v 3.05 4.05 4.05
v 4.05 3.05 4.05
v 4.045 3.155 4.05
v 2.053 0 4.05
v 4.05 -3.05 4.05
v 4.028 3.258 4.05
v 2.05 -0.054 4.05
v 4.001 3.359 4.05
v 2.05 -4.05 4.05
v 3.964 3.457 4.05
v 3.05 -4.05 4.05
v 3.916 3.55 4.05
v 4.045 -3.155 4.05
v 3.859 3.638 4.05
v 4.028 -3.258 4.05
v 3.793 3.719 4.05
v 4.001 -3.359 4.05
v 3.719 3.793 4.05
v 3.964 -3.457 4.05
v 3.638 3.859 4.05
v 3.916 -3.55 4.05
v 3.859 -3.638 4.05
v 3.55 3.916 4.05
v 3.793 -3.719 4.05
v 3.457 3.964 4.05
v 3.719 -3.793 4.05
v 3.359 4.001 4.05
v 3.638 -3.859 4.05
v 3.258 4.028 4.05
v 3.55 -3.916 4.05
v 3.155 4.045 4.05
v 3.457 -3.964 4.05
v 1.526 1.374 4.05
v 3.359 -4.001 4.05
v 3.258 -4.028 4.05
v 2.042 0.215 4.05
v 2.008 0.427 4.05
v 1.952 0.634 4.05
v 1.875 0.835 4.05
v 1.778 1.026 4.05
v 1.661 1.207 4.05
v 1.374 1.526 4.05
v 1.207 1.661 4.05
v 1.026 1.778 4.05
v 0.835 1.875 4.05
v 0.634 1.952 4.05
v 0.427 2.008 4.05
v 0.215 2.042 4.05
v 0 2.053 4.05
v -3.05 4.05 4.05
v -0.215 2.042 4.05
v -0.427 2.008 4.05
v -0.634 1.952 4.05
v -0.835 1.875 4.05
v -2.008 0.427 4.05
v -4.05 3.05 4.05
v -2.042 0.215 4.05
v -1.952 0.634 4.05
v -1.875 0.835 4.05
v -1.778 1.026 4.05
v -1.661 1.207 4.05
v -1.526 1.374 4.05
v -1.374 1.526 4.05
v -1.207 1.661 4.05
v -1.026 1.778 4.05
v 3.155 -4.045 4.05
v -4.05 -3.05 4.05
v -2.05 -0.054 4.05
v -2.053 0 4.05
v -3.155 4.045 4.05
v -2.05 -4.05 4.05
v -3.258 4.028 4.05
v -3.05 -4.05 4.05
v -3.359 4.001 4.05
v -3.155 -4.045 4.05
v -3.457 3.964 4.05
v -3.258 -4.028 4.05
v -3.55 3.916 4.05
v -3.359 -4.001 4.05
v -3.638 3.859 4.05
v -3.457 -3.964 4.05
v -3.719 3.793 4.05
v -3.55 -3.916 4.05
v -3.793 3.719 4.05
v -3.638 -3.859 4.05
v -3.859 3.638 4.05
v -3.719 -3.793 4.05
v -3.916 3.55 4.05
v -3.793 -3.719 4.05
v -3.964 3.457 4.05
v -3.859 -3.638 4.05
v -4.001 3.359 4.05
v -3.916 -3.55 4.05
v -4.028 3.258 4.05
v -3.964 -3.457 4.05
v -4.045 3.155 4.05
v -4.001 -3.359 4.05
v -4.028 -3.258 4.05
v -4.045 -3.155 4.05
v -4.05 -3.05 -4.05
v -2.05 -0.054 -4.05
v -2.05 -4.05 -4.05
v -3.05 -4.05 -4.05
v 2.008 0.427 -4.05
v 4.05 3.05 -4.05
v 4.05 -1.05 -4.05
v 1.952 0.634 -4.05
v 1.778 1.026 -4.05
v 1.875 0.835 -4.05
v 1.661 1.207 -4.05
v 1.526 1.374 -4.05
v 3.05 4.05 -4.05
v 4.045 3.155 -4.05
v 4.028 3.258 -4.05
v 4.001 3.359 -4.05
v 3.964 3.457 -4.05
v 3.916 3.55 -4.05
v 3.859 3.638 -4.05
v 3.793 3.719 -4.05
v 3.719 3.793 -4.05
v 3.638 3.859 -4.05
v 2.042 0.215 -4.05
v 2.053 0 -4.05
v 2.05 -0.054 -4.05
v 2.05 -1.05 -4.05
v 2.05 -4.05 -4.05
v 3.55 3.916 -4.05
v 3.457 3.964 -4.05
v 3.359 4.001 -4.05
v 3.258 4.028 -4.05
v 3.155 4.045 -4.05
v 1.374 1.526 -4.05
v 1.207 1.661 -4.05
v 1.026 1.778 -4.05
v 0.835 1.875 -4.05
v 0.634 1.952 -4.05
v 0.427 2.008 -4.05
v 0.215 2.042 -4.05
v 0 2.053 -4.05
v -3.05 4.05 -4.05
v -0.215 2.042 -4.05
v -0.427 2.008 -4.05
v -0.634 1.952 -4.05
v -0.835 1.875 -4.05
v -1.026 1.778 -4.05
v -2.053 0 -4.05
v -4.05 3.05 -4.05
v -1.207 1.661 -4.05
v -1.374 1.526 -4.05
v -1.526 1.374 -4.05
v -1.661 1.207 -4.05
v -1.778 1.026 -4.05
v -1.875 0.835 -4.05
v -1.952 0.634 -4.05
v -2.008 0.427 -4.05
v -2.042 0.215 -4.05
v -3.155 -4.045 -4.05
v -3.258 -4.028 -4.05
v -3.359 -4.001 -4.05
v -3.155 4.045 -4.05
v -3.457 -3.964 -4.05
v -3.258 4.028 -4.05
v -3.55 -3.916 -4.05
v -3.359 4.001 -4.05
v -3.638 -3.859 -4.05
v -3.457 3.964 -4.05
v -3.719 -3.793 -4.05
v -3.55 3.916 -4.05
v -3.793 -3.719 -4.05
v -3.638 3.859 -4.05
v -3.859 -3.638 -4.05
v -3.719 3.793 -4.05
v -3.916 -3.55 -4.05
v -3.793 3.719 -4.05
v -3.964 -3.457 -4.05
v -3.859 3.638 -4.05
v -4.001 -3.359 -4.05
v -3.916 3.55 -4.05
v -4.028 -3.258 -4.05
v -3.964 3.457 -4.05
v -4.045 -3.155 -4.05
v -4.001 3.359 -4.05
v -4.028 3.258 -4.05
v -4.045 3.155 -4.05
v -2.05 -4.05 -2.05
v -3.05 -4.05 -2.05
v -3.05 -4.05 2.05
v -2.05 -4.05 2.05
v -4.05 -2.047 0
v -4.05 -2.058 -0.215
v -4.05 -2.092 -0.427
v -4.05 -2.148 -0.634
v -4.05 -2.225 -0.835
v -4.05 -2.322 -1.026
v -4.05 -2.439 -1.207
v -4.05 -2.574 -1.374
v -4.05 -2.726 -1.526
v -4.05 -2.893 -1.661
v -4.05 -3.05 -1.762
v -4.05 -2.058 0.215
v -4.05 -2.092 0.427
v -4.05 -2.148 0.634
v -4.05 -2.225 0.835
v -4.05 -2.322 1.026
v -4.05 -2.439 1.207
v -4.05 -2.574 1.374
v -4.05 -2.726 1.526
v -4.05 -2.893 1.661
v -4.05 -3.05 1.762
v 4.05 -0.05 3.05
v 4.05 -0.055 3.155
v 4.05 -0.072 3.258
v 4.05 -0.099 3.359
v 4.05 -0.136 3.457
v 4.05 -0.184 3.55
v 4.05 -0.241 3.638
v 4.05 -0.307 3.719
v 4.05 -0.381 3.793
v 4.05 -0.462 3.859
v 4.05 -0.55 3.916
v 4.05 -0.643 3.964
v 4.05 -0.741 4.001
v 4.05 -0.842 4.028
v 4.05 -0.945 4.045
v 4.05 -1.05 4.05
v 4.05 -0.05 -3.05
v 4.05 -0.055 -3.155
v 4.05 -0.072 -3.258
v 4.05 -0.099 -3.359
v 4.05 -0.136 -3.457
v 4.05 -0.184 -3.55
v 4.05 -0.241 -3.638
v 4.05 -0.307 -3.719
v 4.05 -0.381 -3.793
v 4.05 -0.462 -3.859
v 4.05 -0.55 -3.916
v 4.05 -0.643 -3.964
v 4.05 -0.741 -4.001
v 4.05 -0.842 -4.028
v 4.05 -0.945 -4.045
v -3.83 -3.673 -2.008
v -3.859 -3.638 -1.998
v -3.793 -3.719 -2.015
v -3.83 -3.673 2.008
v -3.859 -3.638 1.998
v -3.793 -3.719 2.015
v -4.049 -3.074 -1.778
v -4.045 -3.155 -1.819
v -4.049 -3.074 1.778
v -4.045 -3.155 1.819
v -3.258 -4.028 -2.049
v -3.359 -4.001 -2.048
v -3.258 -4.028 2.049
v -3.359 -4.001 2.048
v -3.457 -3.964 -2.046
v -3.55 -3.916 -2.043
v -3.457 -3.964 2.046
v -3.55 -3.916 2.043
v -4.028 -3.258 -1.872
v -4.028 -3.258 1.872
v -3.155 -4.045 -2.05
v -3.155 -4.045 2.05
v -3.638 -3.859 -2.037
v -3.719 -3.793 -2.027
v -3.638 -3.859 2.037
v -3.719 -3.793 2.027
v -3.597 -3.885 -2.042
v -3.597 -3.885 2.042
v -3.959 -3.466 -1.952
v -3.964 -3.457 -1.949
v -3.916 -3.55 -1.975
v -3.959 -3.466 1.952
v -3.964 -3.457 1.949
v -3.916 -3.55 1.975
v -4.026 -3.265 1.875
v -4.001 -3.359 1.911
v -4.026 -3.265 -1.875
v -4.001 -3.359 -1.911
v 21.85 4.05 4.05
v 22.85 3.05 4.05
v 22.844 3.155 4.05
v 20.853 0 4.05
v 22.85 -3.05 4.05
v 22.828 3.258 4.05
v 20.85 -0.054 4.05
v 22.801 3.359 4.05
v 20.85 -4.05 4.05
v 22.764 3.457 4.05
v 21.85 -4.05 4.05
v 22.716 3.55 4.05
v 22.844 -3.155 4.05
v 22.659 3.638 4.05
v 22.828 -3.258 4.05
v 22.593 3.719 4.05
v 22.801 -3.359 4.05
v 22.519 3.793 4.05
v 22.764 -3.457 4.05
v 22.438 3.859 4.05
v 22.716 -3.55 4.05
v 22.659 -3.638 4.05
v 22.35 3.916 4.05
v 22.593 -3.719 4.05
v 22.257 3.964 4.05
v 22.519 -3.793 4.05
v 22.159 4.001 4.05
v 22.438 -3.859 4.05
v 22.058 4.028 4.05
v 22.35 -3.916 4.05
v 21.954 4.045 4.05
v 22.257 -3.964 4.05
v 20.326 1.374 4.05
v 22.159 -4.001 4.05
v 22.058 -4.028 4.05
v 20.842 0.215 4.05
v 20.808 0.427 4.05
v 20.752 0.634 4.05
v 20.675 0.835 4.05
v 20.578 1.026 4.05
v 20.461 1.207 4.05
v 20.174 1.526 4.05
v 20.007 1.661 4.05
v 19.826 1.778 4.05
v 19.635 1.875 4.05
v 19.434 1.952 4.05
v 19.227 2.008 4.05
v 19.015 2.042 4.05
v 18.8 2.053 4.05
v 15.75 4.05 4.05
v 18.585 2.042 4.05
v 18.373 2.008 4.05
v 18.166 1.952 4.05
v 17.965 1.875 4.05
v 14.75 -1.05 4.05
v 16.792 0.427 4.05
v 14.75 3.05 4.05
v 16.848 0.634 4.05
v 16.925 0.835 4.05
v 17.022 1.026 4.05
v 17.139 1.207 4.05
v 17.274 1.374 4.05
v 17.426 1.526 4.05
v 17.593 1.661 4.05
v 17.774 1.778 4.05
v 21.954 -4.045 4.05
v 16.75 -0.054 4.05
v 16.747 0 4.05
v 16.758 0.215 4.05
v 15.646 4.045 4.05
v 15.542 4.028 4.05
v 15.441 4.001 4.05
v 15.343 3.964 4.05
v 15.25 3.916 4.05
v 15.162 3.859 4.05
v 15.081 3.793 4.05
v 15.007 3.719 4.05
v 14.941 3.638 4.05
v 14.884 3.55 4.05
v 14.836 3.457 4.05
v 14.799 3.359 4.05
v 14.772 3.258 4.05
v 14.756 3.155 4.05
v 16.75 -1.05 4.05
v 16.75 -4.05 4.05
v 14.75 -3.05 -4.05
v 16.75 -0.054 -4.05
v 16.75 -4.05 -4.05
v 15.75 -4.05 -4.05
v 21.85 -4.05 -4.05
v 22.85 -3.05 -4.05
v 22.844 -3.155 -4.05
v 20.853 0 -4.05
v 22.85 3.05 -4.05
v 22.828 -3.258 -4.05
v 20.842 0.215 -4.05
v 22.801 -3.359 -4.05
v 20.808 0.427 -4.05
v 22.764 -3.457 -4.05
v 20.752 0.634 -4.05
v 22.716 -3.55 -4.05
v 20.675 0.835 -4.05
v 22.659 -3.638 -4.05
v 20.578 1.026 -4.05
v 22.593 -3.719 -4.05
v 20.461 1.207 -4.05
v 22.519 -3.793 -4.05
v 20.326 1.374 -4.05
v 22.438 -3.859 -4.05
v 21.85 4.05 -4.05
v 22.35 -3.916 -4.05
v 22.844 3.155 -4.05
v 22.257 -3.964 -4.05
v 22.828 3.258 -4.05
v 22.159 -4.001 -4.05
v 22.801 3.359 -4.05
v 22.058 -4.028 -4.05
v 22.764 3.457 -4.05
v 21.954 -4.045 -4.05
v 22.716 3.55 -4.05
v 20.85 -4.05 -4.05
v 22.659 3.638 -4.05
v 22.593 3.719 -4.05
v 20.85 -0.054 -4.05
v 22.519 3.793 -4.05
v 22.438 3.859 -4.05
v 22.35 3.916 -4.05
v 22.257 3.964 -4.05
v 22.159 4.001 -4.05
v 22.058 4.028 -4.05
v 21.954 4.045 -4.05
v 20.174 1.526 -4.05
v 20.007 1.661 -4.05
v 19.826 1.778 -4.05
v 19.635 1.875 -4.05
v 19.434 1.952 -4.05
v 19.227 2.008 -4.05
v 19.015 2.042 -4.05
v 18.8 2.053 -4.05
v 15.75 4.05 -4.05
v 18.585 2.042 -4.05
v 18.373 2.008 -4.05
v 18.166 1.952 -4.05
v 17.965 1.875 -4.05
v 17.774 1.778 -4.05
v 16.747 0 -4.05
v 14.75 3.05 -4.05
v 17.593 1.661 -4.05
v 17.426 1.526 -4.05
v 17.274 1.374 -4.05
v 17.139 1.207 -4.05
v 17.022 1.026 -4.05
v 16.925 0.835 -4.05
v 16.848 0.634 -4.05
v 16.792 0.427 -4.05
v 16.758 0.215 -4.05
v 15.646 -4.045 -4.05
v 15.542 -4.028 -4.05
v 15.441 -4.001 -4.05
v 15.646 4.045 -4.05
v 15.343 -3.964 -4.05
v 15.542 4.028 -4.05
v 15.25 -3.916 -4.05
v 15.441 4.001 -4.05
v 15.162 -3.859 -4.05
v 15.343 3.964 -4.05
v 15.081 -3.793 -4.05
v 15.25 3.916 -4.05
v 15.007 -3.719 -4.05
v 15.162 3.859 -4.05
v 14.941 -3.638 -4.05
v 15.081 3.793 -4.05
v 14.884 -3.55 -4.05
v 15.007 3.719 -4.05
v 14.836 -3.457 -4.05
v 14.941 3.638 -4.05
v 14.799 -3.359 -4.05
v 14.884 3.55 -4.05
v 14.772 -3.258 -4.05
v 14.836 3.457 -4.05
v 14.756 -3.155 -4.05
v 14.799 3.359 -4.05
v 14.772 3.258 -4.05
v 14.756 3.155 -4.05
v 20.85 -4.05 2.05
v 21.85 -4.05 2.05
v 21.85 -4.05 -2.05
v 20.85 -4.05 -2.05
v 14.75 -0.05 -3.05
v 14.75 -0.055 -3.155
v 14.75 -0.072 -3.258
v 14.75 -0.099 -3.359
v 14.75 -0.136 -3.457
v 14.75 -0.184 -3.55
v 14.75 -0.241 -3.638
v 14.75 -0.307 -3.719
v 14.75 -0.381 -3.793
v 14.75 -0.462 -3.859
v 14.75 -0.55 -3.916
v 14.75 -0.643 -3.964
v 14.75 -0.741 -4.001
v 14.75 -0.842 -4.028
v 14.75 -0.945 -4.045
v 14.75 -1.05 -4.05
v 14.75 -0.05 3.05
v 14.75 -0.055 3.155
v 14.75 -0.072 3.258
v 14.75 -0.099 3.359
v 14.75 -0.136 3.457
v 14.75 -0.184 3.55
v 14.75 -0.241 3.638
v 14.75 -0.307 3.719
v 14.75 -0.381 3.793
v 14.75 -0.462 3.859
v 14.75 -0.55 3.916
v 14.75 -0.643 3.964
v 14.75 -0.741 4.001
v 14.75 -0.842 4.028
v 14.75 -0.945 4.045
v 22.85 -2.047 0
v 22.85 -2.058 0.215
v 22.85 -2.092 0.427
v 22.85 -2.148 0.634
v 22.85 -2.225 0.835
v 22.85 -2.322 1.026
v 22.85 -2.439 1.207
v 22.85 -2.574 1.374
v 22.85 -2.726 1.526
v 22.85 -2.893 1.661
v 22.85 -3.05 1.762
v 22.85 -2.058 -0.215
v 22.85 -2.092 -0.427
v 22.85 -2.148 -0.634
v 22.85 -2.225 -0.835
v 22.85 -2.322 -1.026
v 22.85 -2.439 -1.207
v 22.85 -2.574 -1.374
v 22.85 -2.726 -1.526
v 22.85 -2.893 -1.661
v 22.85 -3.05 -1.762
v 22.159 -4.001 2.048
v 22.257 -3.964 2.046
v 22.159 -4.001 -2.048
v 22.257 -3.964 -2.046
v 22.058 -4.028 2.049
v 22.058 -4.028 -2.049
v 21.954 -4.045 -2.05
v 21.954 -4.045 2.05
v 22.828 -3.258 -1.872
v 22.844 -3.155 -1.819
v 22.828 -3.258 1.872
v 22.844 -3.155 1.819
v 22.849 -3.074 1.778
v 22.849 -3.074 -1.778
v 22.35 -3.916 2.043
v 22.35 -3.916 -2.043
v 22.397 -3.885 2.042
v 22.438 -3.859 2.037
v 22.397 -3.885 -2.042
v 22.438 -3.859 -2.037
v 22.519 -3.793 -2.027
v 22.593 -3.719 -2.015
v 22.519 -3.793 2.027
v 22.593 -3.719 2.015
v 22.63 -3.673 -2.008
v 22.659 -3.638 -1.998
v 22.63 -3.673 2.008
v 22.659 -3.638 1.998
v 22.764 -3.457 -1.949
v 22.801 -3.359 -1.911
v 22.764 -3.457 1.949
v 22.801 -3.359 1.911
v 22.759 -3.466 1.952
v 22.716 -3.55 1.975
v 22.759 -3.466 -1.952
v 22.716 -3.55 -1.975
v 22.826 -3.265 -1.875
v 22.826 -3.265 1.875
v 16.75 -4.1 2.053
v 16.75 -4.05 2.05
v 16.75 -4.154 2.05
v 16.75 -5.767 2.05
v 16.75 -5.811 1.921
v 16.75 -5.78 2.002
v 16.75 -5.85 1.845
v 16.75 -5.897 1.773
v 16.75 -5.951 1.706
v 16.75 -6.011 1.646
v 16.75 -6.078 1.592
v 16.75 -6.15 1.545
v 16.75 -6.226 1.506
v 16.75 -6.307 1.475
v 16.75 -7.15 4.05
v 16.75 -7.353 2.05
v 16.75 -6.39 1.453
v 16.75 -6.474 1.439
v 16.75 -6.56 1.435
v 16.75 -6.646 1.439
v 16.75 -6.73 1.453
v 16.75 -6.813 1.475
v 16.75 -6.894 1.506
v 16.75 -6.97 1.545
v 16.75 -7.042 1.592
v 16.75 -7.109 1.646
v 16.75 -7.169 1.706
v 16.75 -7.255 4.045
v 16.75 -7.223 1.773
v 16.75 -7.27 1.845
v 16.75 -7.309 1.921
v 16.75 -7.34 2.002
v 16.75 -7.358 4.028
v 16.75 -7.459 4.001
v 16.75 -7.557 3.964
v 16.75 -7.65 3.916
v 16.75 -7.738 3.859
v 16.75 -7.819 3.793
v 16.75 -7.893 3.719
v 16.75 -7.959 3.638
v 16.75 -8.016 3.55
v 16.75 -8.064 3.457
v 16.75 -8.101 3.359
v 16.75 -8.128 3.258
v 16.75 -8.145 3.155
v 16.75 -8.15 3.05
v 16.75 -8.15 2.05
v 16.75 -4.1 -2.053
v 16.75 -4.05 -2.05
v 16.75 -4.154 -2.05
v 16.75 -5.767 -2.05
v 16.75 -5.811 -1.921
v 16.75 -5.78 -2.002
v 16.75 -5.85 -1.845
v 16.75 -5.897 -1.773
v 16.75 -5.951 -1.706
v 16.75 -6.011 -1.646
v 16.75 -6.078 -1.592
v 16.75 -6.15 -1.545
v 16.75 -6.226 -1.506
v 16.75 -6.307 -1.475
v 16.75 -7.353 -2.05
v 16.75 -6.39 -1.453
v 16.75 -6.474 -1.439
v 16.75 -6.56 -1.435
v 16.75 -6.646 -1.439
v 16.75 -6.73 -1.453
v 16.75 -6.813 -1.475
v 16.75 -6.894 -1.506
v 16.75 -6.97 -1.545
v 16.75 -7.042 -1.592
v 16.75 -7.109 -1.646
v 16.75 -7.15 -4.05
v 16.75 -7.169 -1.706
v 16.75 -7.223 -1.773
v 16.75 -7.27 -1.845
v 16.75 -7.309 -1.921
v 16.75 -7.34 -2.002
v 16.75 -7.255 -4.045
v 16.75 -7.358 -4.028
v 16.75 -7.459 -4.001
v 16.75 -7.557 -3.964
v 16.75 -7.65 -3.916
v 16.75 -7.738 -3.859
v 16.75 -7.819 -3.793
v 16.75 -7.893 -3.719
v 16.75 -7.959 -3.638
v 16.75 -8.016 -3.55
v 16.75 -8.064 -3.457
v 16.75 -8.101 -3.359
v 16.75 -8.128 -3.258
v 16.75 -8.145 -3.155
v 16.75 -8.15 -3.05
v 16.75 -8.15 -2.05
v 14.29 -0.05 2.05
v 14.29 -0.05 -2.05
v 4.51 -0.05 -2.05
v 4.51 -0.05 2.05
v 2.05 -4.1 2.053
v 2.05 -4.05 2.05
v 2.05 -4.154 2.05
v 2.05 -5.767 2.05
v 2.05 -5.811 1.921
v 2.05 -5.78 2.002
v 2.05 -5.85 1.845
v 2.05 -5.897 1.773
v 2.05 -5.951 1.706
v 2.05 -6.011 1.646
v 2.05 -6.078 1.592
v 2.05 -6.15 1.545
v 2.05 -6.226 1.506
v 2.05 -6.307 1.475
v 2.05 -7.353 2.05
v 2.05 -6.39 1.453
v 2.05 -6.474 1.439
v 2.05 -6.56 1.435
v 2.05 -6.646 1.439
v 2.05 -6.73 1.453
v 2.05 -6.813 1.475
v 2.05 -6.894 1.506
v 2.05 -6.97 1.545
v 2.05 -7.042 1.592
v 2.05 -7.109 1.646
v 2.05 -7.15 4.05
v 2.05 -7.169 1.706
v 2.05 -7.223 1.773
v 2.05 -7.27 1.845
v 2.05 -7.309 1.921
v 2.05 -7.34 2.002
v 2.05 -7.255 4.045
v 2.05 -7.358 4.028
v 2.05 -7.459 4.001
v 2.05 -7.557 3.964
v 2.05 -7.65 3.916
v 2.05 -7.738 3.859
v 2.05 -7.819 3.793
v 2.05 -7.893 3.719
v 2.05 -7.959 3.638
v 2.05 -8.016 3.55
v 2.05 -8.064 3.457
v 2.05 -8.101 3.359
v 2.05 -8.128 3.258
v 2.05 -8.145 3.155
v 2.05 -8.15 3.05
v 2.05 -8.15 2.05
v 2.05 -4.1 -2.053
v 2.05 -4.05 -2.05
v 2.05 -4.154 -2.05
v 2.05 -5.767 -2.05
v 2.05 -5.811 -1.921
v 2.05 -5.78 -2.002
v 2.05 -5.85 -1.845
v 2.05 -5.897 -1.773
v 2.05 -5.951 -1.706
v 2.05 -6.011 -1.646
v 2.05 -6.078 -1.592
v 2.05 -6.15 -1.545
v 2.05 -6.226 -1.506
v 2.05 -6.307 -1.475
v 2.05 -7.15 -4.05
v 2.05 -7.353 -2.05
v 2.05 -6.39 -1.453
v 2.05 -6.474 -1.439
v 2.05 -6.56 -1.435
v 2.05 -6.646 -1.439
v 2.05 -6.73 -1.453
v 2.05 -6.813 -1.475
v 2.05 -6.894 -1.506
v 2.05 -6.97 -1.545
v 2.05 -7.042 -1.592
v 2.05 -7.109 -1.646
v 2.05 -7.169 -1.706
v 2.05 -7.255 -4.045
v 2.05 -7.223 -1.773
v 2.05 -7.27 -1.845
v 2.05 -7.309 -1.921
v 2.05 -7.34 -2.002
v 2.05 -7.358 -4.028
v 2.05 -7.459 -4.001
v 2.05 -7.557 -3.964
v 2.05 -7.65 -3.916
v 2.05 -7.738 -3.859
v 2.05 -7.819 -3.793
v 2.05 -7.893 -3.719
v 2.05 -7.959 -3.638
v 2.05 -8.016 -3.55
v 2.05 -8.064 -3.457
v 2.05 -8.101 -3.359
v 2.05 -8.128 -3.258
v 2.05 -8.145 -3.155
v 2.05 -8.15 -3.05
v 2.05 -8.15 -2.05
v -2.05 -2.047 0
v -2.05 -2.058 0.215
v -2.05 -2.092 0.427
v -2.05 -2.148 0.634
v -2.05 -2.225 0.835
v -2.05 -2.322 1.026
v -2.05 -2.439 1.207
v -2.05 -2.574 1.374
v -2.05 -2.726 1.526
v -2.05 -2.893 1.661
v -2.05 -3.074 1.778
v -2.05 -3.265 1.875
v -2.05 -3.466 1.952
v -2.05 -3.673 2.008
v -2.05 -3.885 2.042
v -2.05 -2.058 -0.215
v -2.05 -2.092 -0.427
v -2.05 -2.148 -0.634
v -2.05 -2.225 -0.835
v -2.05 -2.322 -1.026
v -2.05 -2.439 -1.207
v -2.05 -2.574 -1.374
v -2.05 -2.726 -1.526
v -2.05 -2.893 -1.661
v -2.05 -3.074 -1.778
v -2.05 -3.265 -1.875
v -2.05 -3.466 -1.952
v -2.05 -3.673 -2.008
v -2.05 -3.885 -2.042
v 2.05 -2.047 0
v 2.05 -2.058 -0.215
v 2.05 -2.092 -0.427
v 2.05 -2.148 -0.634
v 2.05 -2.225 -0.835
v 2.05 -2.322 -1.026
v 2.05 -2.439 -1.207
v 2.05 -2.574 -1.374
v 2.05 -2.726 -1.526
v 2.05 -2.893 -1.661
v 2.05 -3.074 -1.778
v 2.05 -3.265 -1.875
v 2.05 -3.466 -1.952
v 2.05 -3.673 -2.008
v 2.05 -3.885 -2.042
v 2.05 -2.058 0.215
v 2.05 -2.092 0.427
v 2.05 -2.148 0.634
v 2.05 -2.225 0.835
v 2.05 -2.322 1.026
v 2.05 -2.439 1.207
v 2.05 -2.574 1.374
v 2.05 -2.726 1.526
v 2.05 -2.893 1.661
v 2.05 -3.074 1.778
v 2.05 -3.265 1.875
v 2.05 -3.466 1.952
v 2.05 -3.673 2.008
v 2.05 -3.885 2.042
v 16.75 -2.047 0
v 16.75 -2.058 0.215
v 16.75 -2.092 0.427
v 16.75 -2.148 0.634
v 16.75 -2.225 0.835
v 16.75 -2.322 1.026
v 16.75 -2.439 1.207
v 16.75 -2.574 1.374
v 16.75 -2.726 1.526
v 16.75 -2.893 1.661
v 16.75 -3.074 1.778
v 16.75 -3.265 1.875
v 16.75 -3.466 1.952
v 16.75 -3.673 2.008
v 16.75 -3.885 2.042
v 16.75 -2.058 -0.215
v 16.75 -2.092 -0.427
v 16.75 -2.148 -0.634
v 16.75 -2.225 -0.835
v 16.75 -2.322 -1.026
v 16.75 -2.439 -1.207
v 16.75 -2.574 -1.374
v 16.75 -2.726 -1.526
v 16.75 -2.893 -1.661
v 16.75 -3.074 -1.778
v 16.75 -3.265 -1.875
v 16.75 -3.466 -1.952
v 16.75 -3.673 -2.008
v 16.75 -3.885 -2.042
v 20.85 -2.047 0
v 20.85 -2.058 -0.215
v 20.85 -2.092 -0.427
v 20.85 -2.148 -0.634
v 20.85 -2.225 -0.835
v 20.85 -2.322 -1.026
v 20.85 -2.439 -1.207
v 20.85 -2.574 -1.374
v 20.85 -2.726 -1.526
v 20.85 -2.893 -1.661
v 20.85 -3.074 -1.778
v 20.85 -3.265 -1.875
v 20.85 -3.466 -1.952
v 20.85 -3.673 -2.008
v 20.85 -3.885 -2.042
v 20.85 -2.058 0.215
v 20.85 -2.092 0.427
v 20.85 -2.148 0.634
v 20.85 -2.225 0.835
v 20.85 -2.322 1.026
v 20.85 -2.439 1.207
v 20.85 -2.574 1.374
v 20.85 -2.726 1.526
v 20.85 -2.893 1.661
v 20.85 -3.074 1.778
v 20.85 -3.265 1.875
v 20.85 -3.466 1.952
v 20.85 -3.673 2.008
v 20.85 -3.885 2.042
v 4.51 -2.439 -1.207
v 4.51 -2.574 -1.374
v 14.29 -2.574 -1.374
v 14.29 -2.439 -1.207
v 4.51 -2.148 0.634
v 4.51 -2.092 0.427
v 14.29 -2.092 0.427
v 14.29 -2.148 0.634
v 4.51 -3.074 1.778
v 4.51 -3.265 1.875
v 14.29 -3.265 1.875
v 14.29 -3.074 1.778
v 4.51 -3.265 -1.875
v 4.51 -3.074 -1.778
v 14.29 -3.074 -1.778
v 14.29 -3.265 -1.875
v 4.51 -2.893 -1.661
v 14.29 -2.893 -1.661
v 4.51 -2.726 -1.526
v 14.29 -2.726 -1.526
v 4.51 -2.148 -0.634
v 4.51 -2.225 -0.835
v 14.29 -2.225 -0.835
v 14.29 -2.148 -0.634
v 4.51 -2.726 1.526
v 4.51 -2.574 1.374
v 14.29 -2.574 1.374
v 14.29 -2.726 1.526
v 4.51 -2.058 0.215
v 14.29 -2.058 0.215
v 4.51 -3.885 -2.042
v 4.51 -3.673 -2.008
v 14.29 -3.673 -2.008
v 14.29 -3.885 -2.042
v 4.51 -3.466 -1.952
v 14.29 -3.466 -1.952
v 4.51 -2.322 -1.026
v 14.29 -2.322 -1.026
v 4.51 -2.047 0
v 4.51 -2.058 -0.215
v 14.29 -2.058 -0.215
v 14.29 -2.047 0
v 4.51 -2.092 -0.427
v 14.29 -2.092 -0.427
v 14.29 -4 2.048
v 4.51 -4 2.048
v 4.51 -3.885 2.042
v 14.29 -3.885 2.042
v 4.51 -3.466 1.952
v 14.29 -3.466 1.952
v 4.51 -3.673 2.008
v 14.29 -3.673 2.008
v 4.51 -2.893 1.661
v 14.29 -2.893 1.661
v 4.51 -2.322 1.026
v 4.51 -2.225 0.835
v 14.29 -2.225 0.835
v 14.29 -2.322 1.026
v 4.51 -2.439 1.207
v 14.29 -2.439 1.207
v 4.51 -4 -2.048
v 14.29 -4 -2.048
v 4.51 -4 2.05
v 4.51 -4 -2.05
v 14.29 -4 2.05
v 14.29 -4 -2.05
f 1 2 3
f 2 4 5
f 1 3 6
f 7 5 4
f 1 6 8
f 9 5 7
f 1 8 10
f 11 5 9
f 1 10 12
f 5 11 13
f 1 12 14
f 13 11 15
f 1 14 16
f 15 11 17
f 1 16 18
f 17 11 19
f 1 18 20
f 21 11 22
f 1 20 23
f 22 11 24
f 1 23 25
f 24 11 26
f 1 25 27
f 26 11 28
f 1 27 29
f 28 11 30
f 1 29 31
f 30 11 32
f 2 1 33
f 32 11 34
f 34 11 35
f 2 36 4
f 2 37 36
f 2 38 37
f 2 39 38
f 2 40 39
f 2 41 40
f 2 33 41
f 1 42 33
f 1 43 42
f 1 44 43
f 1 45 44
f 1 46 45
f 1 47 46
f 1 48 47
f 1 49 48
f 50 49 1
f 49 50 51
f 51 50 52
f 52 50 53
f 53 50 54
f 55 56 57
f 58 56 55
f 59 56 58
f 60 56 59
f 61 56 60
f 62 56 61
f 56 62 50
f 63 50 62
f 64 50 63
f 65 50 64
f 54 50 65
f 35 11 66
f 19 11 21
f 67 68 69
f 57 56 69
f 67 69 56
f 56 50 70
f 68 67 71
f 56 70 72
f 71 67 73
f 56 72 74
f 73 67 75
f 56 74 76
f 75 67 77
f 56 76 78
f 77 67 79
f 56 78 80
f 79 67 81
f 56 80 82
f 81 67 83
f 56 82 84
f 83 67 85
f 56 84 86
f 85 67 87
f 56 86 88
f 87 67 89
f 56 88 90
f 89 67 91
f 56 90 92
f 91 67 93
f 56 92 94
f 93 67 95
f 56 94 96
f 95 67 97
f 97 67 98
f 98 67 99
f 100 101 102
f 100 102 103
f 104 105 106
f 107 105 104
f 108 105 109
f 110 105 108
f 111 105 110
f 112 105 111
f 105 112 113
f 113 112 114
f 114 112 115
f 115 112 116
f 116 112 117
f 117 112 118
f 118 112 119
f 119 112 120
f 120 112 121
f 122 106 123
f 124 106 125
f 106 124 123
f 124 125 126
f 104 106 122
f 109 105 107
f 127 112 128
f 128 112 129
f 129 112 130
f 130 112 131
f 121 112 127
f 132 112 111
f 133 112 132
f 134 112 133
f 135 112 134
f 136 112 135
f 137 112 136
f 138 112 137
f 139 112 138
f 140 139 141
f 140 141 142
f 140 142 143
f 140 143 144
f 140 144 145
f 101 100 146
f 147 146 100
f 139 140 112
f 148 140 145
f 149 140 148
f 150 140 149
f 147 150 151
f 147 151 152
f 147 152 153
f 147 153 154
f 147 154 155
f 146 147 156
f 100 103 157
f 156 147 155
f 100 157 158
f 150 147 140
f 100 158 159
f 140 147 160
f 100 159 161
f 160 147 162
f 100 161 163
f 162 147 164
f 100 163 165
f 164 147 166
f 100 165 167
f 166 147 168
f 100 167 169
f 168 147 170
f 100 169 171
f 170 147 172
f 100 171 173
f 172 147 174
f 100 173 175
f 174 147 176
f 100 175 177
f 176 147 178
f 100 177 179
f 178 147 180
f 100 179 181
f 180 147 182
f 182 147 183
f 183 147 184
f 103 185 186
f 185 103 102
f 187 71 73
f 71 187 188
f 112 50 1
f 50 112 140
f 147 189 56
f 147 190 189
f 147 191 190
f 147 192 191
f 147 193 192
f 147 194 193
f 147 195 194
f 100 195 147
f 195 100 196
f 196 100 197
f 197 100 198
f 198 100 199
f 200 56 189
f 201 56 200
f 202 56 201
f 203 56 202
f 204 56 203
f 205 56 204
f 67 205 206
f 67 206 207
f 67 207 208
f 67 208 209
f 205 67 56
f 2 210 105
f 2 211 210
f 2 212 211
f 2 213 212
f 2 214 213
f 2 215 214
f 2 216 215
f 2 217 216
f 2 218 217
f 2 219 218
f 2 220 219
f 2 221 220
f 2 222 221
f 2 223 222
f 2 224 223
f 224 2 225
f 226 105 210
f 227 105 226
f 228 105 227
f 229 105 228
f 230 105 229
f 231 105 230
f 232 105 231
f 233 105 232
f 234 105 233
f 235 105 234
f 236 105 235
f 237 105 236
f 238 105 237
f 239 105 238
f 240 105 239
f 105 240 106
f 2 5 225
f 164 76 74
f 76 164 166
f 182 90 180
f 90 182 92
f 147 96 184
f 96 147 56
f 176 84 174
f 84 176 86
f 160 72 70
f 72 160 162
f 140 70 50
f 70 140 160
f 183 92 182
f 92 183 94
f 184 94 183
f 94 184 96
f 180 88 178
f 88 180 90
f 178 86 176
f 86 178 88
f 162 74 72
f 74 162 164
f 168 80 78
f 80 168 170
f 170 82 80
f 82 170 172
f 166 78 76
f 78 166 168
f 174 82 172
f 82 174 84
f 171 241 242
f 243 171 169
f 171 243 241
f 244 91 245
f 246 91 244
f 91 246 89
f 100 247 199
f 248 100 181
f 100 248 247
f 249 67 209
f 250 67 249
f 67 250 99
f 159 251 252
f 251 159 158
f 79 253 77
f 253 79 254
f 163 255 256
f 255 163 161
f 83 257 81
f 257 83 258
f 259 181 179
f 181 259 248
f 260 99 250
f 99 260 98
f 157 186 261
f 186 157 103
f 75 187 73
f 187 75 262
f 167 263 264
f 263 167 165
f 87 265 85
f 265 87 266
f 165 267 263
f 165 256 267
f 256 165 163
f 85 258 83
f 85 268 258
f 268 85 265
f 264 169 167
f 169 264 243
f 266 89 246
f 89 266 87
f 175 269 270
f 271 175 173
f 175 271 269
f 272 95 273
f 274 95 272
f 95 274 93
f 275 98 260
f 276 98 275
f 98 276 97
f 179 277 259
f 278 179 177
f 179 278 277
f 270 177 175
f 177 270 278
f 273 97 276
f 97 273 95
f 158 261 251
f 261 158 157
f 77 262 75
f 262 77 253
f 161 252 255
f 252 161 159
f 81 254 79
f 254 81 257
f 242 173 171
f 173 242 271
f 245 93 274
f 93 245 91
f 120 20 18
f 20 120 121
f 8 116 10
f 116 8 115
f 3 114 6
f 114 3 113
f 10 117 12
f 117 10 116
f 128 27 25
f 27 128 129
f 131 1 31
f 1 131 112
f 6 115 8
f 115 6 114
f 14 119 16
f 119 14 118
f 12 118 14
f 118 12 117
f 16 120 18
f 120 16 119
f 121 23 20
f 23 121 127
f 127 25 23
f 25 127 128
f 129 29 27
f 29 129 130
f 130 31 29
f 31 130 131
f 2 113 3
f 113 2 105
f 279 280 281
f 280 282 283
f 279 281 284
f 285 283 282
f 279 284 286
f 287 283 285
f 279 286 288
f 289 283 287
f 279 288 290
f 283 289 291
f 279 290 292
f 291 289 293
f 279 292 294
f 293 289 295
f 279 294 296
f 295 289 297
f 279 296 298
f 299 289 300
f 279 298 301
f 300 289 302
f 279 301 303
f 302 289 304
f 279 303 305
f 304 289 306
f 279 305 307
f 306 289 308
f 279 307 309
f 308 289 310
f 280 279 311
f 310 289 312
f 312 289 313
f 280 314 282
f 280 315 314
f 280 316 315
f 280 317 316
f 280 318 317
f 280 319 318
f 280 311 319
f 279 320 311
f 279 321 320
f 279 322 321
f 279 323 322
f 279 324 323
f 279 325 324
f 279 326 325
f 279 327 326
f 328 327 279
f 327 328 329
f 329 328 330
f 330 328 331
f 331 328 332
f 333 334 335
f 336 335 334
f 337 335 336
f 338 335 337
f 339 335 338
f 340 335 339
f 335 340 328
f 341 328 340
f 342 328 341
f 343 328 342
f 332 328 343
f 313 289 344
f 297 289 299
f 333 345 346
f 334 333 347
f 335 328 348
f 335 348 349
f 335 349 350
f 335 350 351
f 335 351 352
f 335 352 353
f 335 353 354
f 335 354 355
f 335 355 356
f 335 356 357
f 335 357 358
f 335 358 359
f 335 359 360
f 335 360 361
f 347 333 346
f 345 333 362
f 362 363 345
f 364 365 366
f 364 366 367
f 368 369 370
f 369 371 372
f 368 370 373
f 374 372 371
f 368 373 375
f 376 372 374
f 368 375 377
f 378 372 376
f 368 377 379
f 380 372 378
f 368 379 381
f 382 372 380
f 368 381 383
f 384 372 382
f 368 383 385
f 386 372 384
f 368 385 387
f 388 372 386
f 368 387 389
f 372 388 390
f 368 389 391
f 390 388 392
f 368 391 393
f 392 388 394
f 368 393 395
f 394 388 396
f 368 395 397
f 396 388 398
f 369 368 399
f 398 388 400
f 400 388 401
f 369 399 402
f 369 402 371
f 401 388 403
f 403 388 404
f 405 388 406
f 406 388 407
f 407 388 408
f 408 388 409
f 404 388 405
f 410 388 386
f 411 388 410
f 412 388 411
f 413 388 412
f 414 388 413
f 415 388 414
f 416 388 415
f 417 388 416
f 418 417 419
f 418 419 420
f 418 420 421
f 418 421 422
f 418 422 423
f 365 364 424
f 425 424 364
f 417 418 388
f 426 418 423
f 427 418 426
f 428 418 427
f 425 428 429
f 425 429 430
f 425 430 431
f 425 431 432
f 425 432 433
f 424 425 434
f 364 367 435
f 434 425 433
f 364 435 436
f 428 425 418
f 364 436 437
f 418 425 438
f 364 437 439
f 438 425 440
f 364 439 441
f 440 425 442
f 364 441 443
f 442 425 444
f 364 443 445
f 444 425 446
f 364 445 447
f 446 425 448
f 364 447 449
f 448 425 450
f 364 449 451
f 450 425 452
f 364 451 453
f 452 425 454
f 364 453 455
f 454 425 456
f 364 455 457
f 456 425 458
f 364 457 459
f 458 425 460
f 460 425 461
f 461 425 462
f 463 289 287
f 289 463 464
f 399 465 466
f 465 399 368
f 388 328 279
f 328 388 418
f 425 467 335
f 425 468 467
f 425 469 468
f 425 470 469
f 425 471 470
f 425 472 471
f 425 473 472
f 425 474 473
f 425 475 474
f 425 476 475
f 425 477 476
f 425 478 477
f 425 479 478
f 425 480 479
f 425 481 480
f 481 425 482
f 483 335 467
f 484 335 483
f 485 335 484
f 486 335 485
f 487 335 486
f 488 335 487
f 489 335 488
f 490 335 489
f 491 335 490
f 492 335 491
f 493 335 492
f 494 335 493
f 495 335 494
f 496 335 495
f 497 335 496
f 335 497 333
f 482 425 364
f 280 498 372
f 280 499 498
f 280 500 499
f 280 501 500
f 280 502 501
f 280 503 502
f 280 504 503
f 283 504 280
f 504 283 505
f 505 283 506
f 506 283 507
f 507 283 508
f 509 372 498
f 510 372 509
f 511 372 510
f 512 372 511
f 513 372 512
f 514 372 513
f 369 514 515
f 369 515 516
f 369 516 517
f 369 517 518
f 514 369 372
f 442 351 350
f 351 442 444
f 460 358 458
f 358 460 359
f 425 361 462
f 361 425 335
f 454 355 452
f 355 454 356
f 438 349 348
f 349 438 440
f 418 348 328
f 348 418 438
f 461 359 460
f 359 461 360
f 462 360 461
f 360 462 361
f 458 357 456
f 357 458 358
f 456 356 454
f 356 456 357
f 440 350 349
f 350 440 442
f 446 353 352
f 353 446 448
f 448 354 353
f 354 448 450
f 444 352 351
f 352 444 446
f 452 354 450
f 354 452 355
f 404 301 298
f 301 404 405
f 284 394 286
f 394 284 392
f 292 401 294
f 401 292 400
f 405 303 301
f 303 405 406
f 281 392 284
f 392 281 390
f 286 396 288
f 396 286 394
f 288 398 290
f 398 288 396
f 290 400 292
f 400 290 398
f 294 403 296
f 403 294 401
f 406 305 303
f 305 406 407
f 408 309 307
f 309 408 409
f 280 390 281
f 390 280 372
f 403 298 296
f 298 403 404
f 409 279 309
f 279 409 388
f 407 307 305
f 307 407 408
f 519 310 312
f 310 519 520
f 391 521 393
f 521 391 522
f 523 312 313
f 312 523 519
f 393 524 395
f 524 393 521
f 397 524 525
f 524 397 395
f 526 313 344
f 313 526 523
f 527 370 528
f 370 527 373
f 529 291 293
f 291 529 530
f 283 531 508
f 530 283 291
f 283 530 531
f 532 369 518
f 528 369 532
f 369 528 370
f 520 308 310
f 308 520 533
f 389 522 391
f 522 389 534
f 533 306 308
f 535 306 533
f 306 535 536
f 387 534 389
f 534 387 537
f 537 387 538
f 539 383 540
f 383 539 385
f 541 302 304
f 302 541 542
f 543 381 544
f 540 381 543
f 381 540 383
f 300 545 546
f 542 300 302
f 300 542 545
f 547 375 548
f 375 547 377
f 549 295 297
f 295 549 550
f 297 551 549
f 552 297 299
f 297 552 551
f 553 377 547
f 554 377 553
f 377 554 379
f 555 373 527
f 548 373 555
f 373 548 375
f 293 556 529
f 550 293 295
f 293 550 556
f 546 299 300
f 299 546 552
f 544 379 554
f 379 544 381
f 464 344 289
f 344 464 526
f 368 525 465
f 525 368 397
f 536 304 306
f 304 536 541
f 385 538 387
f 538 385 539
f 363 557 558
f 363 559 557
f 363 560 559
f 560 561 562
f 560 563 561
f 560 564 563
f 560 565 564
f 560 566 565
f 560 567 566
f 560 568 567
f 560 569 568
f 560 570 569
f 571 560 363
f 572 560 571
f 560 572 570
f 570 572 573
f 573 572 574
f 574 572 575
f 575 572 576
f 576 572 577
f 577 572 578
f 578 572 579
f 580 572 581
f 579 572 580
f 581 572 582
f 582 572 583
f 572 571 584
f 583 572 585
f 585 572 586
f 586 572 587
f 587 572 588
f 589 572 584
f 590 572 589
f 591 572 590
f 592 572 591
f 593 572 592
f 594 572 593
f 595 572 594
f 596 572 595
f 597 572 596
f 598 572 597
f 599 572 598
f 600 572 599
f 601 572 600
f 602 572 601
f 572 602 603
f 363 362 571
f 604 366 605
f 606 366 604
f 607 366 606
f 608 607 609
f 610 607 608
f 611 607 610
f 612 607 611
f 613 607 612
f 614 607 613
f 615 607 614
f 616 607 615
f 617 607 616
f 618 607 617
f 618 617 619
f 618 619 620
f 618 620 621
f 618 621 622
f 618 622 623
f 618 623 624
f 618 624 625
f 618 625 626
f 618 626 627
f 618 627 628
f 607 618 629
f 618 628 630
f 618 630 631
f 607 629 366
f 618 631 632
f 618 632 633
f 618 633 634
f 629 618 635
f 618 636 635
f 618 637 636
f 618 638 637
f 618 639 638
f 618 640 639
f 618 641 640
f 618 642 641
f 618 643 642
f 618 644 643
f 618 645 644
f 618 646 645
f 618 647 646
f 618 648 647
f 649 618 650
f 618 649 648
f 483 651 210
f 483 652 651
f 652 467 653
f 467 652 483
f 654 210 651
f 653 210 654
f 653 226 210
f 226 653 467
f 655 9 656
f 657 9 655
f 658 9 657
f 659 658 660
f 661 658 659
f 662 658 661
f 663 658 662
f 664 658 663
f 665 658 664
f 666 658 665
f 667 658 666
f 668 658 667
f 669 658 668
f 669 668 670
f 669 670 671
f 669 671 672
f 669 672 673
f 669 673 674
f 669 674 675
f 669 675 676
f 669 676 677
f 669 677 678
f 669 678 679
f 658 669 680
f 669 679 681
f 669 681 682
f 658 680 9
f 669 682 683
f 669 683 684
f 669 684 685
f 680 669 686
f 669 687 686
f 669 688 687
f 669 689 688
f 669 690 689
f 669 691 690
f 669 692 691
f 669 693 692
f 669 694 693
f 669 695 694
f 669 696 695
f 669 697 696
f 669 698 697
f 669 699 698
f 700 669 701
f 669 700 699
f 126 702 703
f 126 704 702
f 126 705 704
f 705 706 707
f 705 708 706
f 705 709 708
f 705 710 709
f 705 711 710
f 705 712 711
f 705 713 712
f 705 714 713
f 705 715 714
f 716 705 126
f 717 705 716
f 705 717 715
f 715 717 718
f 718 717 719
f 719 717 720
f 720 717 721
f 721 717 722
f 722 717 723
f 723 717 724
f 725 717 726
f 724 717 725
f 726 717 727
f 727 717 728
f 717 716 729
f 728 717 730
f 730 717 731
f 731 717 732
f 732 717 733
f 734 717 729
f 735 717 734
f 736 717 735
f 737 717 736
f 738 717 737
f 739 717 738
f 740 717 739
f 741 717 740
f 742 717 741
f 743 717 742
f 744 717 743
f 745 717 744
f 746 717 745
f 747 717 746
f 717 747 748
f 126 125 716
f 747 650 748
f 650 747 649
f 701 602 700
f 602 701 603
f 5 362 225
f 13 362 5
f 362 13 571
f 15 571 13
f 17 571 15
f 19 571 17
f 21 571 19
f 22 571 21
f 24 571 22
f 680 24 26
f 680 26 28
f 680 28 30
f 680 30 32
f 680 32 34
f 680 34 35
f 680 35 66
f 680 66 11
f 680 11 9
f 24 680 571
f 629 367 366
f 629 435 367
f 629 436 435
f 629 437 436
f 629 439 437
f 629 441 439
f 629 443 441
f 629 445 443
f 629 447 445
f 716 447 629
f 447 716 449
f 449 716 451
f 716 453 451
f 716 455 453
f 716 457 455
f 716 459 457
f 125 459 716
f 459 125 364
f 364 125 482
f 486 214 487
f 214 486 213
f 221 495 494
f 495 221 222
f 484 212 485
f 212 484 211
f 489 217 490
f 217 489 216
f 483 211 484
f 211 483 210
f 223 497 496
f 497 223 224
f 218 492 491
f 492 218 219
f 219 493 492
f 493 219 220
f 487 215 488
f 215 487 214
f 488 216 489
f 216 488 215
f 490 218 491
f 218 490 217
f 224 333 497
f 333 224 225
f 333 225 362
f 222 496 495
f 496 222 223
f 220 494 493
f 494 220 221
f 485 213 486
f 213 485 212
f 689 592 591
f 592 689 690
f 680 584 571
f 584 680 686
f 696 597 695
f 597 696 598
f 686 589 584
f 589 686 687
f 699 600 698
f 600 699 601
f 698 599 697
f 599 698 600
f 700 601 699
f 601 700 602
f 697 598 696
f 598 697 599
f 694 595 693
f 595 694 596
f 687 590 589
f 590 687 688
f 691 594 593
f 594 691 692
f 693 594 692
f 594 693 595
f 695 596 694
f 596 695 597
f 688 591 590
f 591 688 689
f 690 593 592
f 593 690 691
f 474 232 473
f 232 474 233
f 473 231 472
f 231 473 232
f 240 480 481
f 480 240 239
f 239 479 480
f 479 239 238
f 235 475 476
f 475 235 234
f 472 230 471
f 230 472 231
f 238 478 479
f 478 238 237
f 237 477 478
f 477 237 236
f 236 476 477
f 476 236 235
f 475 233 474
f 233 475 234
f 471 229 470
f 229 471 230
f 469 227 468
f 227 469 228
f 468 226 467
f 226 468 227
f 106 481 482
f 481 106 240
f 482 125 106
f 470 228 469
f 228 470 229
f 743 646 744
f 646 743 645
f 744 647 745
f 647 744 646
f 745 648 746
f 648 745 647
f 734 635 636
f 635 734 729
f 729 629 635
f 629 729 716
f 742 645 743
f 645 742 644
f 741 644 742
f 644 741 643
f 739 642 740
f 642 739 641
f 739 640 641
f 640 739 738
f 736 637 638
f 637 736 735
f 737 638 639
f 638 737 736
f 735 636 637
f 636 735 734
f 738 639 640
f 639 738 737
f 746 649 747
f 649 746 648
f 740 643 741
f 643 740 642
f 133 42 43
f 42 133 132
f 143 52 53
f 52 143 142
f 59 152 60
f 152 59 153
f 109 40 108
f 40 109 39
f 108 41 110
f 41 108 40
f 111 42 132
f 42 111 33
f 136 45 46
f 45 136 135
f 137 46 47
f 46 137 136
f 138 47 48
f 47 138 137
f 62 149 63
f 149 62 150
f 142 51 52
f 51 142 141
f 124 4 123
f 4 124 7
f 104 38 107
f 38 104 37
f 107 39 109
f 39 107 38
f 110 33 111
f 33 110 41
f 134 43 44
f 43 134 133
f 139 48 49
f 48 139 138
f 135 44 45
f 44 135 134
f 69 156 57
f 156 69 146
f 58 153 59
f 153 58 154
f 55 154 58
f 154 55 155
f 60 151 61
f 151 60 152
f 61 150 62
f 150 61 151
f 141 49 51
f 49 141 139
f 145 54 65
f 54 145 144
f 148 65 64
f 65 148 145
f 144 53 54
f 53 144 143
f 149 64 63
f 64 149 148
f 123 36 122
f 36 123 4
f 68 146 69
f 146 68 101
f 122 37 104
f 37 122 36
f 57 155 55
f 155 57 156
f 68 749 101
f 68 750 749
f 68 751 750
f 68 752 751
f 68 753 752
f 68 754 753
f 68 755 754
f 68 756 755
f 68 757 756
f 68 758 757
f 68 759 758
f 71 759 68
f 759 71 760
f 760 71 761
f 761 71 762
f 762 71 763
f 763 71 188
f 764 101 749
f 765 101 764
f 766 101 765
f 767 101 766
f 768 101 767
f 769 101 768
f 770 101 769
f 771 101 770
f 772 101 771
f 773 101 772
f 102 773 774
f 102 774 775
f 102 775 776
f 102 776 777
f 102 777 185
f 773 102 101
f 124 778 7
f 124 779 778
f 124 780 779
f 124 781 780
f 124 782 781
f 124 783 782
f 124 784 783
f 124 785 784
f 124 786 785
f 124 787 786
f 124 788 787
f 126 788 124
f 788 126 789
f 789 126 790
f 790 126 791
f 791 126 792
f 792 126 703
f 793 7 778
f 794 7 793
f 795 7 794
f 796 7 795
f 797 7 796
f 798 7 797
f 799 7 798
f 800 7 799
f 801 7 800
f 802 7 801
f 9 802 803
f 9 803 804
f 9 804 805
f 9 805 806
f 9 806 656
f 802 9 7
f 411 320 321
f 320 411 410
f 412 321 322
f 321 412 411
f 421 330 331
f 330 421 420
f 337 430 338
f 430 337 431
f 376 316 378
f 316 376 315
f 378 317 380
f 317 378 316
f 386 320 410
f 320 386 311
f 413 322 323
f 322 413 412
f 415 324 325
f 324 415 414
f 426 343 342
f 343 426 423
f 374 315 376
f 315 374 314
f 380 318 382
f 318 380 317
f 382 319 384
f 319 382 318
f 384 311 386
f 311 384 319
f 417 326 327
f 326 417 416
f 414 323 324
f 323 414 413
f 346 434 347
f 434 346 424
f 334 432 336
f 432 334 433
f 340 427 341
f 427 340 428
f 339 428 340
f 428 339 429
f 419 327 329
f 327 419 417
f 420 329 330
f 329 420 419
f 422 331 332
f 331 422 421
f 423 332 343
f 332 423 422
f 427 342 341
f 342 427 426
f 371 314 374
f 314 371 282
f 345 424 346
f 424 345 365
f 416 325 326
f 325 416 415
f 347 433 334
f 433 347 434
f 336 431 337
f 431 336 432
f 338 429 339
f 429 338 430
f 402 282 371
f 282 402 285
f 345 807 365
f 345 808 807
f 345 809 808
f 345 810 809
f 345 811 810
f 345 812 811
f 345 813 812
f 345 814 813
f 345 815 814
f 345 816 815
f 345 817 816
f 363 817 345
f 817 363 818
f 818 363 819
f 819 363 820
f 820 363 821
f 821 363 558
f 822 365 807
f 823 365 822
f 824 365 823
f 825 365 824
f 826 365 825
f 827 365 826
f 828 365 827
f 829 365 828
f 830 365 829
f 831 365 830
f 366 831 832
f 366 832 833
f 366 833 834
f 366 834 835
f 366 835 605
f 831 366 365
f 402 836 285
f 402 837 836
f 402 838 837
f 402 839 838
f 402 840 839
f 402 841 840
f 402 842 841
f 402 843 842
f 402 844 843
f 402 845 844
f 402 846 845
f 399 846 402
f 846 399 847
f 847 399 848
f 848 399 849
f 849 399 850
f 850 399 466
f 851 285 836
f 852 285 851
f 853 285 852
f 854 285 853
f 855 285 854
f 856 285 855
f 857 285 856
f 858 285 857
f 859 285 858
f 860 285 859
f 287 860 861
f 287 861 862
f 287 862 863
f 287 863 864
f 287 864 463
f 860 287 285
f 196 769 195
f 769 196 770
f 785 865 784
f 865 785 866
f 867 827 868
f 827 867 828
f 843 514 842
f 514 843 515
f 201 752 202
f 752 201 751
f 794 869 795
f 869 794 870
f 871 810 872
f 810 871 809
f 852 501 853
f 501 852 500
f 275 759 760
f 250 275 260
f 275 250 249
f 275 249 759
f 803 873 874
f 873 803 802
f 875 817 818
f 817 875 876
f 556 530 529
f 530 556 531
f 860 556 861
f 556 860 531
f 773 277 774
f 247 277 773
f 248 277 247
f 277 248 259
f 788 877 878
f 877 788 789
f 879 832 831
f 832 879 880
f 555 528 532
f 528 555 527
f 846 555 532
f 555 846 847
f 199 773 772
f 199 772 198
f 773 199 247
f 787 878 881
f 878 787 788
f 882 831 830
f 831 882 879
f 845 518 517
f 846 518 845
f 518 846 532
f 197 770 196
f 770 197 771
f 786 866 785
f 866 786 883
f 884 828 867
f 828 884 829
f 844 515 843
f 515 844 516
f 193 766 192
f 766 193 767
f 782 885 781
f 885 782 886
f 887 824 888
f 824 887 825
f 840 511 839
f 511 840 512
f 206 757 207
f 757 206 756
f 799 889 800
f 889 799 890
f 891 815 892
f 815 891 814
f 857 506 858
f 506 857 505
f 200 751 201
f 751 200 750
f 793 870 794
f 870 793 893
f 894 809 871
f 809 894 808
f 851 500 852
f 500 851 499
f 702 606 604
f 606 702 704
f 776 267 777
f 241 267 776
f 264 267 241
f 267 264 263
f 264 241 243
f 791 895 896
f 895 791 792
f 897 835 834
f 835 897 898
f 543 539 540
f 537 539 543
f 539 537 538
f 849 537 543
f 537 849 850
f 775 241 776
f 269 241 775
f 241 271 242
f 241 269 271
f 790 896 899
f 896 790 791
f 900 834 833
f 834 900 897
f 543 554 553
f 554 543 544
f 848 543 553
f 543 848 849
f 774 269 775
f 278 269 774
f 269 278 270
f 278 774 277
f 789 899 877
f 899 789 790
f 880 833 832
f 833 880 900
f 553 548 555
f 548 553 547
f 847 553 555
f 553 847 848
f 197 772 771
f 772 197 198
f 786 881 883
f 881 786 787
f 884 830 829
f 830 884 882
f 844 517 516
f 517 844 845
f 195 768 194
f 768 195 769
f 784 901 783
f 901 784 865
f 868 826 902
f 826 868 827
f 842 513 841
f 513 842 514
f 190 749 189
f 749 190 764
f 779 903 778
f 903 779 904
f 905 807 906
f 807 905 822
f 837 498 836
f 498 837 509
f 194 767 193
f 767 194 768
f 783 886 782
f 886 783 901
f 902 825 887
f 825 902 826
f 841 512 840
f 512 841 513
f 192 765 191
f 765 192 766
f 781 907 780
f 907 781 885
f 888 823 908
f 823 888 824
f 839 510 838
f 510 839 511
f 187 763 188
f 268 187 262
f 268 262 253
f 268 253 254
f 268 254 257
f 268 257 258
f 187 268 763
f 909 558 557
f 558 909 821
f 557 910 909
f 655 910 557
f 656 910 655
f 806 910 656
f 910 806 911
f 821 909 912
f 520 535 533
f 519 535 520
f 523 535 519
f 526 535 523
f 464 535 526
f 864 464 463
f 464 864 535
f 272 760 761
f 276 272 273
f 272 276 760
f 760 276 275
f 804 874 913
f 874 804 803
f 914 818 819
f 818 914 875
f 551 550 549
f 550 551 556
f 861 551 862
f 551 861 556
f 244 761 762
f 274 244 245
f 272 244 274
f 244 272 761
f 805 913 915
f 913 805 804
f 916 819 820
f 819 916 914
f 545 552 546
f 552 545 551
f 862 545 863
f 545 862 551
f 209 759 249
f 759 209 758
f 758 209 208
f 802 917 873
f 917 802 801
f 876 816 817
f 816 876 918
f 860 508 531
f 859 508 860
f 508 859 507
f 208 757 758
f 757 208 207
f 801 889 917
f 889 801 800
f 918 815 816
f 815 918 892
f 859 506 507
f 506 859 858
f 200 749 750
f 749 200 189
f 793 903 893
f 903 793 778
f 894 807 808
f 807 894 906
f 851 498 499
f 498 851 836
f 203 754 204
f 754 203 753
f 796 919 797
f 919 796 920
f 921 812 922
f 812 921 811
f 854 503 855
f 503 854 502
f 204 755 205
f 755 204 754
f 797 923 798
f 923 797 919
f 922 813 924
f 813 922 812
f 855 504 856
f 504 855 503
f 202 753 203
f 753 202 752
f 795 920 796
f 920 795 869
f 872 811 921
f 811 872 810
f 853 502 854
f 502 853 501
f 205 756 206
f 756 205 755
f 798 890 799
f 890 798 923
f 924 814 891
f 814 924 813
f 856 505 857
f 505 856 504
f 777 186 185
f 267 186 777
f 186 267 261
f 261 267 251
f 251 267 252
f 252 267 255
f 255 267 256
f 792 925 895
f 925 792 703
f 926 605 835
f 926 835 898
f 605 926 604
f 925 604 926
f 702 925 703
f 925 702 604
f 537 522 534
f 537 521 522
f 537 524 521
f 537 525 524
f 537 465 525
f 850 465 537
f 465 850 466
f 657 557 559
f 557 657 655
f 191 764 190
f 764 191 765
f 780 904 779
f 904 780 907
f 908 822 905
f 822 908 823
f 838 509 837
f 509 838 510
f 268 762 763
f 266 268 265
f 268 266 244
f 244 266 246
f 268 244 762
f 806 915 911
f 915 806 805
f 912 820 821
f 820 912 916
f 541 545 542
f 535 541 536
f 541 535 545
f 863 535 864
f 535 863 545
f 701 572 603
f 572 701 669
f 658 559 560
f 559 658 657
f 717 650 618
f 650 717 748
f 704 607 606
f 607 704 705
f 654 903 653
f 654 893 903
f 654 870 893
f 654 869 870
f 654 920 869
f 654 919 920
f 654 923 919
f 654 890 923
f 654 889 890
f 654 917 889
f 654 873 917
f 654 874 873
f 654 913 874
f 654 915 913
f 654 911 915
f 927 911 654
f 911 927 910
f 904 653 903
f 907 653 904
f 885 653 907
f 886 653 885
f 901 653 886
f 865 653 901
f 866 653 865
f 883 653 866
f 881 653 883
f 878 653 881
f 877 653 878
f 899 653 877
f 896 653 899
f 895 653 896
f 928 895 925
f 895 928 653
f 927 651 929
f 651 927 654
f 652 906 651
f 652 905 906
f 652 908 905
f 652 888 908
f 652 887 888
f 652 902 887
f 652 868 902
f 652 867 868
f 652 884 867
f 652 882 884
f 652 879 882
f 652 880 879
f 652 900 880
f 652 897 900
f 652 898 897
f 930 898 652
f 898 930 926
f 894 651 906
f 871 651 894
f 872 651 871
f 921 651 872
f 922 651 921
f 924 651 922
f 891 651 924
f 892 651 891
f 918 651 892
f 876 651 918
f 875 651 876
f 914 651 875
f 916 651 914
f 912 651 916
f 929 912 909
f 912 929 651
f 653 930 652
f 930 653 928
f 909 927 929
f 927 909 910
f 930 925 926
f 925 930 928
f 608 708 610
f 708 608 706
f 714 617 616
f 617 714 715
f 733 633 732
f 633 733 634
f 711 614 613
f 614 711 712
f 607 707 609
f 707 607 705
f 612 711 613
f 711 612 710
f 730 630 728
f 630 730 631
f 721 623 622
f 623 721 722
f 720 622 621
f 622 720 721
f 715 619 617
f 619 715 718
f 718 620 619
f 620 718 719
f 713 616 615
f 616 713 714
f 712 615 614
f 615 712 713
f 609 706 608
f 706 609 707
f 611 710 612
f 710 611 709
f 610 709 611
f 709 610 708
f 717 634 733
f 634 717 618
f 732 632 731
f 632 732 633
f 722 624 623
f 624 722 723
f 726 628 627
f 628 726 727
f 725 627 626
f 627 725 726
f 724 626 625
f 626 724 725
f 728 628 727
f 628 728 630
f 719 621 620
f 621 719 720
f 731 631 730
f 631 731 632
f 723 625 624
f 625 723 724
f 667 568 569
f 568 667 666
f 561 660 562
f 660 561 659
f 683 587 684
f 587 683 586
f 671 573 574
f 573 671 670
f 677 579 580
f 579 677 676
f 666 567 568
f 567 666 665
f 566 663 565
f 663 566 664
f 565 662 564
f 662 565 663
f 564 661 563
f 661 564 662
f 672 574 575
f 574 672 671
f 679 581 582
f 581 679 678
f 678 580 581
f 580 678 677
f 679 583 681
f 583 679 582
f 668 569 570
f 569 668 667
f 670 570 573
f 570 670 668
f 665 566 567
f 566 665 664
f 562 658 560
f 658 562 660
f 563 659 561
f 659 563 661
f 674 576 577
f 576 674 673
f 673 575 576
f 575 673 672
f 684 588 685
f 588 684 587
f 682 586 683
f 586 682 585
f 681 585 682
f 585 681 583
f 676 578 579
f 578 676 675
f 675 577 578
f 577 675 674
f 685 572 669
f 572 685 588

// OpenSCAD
/*
 * Clamp for securing plate racks in lower basket
 * of dishwasher machines. Suitable for selected
 * Siemens and Bosch dishwashers.
 *
 * (c) 2016 Jozef Sovcik
 * Siemens & Bosch are trademarks for their respective holders.
 *
 * All lenghts are in milimeters.
 *
 * Tip: Print it up-side-down - it would require less support.
 */

// wire diameter 4.1mm
wireDiameter = 4.1;

// wire radius
wireRadius = wireDiameter/2;

// distance between two top wires
wireDistance = 14.7; 

// element wall thickness
wallThickness = 2.0;

// corner rounding radius
cornerRadius = 1.0;

// clamp width
clampWidth = 8.1;

// extra padding
lowerPadding = 0;

//***************************

elementHeight = wireDiameter + 2*wallThickness + lowerPadding;
elementWidth = wireDiameter + 2*wallThickness;
topElementZ = clampWidth;
botElementZ = wireDistance;

totalWidth = 2*wireDiameter+wireDistance+2*wallThickness;
echo("Total clamp width =", totalWidth );



module cylinder_outer(height,radius,fn){
    fudge = 1/cos(180/fn);
    cylinder(h=height,r=radius*fudge,$fn=fn, center=true);
}


module element(w, h, r, d){
    // element is composed of 2 overlaping cubes
    // and 4 cylinders used to "round" edges.
    // technically, one cube([w,h,d]) would be just fine
    // all those cylinders are just for "beautification"
    cube([w-2*r,h,d], center=true);
    cube([w,h-2*r,d], center=true);
    translate([-w/2+r,h/2-r,0])
        cylinder(h=d,r=r,$fn=60, center=true);
    translate([-w/2+r,-h/2+r,0])
        cylinder(h=d,r=r,$fn=60, center=true);
    translate([w/2-r,h/2-r,0])
        cylinder(h=d,r=r,$fn=60, center=true);
    translate([w/2-r,-h/2+r,0])
        cylinder(h=d,r=r,$fn=60, center=true);
    
} 

module bearingBody(cw, ch, cr, cz, wd, wdst){
    
    // draw left upper element
    element(cw, ch, cr, cz);
    
    // draw right upper element
    translate([wdst+wd,0,0])
        element(cw, ch, cr, cz);

    // draw lower element connecting two upper ones
    translate([(wd+wdst)/2, -wd, 0])
        rotate(a=90,v=[0,1,0])
            element(cw, ch, cr, wdst);
}

module wire(wr, l) {
    cylinder_outer(l, wr, 60);
    translate([0, -2*wr, 0])
        cube([wr*2,4*wr,l], center=true);   
}

module wires(wr, wdst, l){

    // left wire
    wire(wr, l);
    
    // right wire
    translate([wdst+2*wr,0,0])
        wire(wr, l);
    
    // bottom wire
    translate([(2*wr+wdst)/2, -2*wr, 0])
        rotate(a=90,v=[0,1,0])
            wire(wr, wdst*2);
}

// bottom clicks
module clicks(wr, wdst, l){
    
    // click radius
	cr = wr*0.4;
    
    // horizontal offset of click relative to center of wire
    offH = wr*1.1;
    
    // vertical offset of click relative to center of wire
    offV = wr*1.2;
    
    translate([(2*wr+wdst)/2, -2*wr, 0])
        rotate(a=90,v=[0,1,0]){
            translate([offH,-offV,0])
                cylinder(h=wdst,r=cr,$fn=60, center=true);
            translate([-offH,-offV,0])
                cylinder(h=wdst,r=cr,$fn=60, center=true);
            
        }      
}

//********************************************

difference(){
    // draw body
    bearingBody(elementWidth, elementHeight, cornerRadius, topElementZ,  wireDiameter, wireDistance);

    // create holes for wires
    wires(wireDiameter/2, wireDistance, topElementZ*2);
    
    // create hole in the top of the mid section
    translate([(wireDiameter+wireDistance)/2,0,0])
        cube([(wireDistance - wireDiameter*1.2), wallThickness*4,wireDiameter], center=true);
    
}
// create "clicks" which will secure clamp in place, 
// so it won't fall off
clicks(wireDiameter/2, wireDistance, topElementZ*2);
